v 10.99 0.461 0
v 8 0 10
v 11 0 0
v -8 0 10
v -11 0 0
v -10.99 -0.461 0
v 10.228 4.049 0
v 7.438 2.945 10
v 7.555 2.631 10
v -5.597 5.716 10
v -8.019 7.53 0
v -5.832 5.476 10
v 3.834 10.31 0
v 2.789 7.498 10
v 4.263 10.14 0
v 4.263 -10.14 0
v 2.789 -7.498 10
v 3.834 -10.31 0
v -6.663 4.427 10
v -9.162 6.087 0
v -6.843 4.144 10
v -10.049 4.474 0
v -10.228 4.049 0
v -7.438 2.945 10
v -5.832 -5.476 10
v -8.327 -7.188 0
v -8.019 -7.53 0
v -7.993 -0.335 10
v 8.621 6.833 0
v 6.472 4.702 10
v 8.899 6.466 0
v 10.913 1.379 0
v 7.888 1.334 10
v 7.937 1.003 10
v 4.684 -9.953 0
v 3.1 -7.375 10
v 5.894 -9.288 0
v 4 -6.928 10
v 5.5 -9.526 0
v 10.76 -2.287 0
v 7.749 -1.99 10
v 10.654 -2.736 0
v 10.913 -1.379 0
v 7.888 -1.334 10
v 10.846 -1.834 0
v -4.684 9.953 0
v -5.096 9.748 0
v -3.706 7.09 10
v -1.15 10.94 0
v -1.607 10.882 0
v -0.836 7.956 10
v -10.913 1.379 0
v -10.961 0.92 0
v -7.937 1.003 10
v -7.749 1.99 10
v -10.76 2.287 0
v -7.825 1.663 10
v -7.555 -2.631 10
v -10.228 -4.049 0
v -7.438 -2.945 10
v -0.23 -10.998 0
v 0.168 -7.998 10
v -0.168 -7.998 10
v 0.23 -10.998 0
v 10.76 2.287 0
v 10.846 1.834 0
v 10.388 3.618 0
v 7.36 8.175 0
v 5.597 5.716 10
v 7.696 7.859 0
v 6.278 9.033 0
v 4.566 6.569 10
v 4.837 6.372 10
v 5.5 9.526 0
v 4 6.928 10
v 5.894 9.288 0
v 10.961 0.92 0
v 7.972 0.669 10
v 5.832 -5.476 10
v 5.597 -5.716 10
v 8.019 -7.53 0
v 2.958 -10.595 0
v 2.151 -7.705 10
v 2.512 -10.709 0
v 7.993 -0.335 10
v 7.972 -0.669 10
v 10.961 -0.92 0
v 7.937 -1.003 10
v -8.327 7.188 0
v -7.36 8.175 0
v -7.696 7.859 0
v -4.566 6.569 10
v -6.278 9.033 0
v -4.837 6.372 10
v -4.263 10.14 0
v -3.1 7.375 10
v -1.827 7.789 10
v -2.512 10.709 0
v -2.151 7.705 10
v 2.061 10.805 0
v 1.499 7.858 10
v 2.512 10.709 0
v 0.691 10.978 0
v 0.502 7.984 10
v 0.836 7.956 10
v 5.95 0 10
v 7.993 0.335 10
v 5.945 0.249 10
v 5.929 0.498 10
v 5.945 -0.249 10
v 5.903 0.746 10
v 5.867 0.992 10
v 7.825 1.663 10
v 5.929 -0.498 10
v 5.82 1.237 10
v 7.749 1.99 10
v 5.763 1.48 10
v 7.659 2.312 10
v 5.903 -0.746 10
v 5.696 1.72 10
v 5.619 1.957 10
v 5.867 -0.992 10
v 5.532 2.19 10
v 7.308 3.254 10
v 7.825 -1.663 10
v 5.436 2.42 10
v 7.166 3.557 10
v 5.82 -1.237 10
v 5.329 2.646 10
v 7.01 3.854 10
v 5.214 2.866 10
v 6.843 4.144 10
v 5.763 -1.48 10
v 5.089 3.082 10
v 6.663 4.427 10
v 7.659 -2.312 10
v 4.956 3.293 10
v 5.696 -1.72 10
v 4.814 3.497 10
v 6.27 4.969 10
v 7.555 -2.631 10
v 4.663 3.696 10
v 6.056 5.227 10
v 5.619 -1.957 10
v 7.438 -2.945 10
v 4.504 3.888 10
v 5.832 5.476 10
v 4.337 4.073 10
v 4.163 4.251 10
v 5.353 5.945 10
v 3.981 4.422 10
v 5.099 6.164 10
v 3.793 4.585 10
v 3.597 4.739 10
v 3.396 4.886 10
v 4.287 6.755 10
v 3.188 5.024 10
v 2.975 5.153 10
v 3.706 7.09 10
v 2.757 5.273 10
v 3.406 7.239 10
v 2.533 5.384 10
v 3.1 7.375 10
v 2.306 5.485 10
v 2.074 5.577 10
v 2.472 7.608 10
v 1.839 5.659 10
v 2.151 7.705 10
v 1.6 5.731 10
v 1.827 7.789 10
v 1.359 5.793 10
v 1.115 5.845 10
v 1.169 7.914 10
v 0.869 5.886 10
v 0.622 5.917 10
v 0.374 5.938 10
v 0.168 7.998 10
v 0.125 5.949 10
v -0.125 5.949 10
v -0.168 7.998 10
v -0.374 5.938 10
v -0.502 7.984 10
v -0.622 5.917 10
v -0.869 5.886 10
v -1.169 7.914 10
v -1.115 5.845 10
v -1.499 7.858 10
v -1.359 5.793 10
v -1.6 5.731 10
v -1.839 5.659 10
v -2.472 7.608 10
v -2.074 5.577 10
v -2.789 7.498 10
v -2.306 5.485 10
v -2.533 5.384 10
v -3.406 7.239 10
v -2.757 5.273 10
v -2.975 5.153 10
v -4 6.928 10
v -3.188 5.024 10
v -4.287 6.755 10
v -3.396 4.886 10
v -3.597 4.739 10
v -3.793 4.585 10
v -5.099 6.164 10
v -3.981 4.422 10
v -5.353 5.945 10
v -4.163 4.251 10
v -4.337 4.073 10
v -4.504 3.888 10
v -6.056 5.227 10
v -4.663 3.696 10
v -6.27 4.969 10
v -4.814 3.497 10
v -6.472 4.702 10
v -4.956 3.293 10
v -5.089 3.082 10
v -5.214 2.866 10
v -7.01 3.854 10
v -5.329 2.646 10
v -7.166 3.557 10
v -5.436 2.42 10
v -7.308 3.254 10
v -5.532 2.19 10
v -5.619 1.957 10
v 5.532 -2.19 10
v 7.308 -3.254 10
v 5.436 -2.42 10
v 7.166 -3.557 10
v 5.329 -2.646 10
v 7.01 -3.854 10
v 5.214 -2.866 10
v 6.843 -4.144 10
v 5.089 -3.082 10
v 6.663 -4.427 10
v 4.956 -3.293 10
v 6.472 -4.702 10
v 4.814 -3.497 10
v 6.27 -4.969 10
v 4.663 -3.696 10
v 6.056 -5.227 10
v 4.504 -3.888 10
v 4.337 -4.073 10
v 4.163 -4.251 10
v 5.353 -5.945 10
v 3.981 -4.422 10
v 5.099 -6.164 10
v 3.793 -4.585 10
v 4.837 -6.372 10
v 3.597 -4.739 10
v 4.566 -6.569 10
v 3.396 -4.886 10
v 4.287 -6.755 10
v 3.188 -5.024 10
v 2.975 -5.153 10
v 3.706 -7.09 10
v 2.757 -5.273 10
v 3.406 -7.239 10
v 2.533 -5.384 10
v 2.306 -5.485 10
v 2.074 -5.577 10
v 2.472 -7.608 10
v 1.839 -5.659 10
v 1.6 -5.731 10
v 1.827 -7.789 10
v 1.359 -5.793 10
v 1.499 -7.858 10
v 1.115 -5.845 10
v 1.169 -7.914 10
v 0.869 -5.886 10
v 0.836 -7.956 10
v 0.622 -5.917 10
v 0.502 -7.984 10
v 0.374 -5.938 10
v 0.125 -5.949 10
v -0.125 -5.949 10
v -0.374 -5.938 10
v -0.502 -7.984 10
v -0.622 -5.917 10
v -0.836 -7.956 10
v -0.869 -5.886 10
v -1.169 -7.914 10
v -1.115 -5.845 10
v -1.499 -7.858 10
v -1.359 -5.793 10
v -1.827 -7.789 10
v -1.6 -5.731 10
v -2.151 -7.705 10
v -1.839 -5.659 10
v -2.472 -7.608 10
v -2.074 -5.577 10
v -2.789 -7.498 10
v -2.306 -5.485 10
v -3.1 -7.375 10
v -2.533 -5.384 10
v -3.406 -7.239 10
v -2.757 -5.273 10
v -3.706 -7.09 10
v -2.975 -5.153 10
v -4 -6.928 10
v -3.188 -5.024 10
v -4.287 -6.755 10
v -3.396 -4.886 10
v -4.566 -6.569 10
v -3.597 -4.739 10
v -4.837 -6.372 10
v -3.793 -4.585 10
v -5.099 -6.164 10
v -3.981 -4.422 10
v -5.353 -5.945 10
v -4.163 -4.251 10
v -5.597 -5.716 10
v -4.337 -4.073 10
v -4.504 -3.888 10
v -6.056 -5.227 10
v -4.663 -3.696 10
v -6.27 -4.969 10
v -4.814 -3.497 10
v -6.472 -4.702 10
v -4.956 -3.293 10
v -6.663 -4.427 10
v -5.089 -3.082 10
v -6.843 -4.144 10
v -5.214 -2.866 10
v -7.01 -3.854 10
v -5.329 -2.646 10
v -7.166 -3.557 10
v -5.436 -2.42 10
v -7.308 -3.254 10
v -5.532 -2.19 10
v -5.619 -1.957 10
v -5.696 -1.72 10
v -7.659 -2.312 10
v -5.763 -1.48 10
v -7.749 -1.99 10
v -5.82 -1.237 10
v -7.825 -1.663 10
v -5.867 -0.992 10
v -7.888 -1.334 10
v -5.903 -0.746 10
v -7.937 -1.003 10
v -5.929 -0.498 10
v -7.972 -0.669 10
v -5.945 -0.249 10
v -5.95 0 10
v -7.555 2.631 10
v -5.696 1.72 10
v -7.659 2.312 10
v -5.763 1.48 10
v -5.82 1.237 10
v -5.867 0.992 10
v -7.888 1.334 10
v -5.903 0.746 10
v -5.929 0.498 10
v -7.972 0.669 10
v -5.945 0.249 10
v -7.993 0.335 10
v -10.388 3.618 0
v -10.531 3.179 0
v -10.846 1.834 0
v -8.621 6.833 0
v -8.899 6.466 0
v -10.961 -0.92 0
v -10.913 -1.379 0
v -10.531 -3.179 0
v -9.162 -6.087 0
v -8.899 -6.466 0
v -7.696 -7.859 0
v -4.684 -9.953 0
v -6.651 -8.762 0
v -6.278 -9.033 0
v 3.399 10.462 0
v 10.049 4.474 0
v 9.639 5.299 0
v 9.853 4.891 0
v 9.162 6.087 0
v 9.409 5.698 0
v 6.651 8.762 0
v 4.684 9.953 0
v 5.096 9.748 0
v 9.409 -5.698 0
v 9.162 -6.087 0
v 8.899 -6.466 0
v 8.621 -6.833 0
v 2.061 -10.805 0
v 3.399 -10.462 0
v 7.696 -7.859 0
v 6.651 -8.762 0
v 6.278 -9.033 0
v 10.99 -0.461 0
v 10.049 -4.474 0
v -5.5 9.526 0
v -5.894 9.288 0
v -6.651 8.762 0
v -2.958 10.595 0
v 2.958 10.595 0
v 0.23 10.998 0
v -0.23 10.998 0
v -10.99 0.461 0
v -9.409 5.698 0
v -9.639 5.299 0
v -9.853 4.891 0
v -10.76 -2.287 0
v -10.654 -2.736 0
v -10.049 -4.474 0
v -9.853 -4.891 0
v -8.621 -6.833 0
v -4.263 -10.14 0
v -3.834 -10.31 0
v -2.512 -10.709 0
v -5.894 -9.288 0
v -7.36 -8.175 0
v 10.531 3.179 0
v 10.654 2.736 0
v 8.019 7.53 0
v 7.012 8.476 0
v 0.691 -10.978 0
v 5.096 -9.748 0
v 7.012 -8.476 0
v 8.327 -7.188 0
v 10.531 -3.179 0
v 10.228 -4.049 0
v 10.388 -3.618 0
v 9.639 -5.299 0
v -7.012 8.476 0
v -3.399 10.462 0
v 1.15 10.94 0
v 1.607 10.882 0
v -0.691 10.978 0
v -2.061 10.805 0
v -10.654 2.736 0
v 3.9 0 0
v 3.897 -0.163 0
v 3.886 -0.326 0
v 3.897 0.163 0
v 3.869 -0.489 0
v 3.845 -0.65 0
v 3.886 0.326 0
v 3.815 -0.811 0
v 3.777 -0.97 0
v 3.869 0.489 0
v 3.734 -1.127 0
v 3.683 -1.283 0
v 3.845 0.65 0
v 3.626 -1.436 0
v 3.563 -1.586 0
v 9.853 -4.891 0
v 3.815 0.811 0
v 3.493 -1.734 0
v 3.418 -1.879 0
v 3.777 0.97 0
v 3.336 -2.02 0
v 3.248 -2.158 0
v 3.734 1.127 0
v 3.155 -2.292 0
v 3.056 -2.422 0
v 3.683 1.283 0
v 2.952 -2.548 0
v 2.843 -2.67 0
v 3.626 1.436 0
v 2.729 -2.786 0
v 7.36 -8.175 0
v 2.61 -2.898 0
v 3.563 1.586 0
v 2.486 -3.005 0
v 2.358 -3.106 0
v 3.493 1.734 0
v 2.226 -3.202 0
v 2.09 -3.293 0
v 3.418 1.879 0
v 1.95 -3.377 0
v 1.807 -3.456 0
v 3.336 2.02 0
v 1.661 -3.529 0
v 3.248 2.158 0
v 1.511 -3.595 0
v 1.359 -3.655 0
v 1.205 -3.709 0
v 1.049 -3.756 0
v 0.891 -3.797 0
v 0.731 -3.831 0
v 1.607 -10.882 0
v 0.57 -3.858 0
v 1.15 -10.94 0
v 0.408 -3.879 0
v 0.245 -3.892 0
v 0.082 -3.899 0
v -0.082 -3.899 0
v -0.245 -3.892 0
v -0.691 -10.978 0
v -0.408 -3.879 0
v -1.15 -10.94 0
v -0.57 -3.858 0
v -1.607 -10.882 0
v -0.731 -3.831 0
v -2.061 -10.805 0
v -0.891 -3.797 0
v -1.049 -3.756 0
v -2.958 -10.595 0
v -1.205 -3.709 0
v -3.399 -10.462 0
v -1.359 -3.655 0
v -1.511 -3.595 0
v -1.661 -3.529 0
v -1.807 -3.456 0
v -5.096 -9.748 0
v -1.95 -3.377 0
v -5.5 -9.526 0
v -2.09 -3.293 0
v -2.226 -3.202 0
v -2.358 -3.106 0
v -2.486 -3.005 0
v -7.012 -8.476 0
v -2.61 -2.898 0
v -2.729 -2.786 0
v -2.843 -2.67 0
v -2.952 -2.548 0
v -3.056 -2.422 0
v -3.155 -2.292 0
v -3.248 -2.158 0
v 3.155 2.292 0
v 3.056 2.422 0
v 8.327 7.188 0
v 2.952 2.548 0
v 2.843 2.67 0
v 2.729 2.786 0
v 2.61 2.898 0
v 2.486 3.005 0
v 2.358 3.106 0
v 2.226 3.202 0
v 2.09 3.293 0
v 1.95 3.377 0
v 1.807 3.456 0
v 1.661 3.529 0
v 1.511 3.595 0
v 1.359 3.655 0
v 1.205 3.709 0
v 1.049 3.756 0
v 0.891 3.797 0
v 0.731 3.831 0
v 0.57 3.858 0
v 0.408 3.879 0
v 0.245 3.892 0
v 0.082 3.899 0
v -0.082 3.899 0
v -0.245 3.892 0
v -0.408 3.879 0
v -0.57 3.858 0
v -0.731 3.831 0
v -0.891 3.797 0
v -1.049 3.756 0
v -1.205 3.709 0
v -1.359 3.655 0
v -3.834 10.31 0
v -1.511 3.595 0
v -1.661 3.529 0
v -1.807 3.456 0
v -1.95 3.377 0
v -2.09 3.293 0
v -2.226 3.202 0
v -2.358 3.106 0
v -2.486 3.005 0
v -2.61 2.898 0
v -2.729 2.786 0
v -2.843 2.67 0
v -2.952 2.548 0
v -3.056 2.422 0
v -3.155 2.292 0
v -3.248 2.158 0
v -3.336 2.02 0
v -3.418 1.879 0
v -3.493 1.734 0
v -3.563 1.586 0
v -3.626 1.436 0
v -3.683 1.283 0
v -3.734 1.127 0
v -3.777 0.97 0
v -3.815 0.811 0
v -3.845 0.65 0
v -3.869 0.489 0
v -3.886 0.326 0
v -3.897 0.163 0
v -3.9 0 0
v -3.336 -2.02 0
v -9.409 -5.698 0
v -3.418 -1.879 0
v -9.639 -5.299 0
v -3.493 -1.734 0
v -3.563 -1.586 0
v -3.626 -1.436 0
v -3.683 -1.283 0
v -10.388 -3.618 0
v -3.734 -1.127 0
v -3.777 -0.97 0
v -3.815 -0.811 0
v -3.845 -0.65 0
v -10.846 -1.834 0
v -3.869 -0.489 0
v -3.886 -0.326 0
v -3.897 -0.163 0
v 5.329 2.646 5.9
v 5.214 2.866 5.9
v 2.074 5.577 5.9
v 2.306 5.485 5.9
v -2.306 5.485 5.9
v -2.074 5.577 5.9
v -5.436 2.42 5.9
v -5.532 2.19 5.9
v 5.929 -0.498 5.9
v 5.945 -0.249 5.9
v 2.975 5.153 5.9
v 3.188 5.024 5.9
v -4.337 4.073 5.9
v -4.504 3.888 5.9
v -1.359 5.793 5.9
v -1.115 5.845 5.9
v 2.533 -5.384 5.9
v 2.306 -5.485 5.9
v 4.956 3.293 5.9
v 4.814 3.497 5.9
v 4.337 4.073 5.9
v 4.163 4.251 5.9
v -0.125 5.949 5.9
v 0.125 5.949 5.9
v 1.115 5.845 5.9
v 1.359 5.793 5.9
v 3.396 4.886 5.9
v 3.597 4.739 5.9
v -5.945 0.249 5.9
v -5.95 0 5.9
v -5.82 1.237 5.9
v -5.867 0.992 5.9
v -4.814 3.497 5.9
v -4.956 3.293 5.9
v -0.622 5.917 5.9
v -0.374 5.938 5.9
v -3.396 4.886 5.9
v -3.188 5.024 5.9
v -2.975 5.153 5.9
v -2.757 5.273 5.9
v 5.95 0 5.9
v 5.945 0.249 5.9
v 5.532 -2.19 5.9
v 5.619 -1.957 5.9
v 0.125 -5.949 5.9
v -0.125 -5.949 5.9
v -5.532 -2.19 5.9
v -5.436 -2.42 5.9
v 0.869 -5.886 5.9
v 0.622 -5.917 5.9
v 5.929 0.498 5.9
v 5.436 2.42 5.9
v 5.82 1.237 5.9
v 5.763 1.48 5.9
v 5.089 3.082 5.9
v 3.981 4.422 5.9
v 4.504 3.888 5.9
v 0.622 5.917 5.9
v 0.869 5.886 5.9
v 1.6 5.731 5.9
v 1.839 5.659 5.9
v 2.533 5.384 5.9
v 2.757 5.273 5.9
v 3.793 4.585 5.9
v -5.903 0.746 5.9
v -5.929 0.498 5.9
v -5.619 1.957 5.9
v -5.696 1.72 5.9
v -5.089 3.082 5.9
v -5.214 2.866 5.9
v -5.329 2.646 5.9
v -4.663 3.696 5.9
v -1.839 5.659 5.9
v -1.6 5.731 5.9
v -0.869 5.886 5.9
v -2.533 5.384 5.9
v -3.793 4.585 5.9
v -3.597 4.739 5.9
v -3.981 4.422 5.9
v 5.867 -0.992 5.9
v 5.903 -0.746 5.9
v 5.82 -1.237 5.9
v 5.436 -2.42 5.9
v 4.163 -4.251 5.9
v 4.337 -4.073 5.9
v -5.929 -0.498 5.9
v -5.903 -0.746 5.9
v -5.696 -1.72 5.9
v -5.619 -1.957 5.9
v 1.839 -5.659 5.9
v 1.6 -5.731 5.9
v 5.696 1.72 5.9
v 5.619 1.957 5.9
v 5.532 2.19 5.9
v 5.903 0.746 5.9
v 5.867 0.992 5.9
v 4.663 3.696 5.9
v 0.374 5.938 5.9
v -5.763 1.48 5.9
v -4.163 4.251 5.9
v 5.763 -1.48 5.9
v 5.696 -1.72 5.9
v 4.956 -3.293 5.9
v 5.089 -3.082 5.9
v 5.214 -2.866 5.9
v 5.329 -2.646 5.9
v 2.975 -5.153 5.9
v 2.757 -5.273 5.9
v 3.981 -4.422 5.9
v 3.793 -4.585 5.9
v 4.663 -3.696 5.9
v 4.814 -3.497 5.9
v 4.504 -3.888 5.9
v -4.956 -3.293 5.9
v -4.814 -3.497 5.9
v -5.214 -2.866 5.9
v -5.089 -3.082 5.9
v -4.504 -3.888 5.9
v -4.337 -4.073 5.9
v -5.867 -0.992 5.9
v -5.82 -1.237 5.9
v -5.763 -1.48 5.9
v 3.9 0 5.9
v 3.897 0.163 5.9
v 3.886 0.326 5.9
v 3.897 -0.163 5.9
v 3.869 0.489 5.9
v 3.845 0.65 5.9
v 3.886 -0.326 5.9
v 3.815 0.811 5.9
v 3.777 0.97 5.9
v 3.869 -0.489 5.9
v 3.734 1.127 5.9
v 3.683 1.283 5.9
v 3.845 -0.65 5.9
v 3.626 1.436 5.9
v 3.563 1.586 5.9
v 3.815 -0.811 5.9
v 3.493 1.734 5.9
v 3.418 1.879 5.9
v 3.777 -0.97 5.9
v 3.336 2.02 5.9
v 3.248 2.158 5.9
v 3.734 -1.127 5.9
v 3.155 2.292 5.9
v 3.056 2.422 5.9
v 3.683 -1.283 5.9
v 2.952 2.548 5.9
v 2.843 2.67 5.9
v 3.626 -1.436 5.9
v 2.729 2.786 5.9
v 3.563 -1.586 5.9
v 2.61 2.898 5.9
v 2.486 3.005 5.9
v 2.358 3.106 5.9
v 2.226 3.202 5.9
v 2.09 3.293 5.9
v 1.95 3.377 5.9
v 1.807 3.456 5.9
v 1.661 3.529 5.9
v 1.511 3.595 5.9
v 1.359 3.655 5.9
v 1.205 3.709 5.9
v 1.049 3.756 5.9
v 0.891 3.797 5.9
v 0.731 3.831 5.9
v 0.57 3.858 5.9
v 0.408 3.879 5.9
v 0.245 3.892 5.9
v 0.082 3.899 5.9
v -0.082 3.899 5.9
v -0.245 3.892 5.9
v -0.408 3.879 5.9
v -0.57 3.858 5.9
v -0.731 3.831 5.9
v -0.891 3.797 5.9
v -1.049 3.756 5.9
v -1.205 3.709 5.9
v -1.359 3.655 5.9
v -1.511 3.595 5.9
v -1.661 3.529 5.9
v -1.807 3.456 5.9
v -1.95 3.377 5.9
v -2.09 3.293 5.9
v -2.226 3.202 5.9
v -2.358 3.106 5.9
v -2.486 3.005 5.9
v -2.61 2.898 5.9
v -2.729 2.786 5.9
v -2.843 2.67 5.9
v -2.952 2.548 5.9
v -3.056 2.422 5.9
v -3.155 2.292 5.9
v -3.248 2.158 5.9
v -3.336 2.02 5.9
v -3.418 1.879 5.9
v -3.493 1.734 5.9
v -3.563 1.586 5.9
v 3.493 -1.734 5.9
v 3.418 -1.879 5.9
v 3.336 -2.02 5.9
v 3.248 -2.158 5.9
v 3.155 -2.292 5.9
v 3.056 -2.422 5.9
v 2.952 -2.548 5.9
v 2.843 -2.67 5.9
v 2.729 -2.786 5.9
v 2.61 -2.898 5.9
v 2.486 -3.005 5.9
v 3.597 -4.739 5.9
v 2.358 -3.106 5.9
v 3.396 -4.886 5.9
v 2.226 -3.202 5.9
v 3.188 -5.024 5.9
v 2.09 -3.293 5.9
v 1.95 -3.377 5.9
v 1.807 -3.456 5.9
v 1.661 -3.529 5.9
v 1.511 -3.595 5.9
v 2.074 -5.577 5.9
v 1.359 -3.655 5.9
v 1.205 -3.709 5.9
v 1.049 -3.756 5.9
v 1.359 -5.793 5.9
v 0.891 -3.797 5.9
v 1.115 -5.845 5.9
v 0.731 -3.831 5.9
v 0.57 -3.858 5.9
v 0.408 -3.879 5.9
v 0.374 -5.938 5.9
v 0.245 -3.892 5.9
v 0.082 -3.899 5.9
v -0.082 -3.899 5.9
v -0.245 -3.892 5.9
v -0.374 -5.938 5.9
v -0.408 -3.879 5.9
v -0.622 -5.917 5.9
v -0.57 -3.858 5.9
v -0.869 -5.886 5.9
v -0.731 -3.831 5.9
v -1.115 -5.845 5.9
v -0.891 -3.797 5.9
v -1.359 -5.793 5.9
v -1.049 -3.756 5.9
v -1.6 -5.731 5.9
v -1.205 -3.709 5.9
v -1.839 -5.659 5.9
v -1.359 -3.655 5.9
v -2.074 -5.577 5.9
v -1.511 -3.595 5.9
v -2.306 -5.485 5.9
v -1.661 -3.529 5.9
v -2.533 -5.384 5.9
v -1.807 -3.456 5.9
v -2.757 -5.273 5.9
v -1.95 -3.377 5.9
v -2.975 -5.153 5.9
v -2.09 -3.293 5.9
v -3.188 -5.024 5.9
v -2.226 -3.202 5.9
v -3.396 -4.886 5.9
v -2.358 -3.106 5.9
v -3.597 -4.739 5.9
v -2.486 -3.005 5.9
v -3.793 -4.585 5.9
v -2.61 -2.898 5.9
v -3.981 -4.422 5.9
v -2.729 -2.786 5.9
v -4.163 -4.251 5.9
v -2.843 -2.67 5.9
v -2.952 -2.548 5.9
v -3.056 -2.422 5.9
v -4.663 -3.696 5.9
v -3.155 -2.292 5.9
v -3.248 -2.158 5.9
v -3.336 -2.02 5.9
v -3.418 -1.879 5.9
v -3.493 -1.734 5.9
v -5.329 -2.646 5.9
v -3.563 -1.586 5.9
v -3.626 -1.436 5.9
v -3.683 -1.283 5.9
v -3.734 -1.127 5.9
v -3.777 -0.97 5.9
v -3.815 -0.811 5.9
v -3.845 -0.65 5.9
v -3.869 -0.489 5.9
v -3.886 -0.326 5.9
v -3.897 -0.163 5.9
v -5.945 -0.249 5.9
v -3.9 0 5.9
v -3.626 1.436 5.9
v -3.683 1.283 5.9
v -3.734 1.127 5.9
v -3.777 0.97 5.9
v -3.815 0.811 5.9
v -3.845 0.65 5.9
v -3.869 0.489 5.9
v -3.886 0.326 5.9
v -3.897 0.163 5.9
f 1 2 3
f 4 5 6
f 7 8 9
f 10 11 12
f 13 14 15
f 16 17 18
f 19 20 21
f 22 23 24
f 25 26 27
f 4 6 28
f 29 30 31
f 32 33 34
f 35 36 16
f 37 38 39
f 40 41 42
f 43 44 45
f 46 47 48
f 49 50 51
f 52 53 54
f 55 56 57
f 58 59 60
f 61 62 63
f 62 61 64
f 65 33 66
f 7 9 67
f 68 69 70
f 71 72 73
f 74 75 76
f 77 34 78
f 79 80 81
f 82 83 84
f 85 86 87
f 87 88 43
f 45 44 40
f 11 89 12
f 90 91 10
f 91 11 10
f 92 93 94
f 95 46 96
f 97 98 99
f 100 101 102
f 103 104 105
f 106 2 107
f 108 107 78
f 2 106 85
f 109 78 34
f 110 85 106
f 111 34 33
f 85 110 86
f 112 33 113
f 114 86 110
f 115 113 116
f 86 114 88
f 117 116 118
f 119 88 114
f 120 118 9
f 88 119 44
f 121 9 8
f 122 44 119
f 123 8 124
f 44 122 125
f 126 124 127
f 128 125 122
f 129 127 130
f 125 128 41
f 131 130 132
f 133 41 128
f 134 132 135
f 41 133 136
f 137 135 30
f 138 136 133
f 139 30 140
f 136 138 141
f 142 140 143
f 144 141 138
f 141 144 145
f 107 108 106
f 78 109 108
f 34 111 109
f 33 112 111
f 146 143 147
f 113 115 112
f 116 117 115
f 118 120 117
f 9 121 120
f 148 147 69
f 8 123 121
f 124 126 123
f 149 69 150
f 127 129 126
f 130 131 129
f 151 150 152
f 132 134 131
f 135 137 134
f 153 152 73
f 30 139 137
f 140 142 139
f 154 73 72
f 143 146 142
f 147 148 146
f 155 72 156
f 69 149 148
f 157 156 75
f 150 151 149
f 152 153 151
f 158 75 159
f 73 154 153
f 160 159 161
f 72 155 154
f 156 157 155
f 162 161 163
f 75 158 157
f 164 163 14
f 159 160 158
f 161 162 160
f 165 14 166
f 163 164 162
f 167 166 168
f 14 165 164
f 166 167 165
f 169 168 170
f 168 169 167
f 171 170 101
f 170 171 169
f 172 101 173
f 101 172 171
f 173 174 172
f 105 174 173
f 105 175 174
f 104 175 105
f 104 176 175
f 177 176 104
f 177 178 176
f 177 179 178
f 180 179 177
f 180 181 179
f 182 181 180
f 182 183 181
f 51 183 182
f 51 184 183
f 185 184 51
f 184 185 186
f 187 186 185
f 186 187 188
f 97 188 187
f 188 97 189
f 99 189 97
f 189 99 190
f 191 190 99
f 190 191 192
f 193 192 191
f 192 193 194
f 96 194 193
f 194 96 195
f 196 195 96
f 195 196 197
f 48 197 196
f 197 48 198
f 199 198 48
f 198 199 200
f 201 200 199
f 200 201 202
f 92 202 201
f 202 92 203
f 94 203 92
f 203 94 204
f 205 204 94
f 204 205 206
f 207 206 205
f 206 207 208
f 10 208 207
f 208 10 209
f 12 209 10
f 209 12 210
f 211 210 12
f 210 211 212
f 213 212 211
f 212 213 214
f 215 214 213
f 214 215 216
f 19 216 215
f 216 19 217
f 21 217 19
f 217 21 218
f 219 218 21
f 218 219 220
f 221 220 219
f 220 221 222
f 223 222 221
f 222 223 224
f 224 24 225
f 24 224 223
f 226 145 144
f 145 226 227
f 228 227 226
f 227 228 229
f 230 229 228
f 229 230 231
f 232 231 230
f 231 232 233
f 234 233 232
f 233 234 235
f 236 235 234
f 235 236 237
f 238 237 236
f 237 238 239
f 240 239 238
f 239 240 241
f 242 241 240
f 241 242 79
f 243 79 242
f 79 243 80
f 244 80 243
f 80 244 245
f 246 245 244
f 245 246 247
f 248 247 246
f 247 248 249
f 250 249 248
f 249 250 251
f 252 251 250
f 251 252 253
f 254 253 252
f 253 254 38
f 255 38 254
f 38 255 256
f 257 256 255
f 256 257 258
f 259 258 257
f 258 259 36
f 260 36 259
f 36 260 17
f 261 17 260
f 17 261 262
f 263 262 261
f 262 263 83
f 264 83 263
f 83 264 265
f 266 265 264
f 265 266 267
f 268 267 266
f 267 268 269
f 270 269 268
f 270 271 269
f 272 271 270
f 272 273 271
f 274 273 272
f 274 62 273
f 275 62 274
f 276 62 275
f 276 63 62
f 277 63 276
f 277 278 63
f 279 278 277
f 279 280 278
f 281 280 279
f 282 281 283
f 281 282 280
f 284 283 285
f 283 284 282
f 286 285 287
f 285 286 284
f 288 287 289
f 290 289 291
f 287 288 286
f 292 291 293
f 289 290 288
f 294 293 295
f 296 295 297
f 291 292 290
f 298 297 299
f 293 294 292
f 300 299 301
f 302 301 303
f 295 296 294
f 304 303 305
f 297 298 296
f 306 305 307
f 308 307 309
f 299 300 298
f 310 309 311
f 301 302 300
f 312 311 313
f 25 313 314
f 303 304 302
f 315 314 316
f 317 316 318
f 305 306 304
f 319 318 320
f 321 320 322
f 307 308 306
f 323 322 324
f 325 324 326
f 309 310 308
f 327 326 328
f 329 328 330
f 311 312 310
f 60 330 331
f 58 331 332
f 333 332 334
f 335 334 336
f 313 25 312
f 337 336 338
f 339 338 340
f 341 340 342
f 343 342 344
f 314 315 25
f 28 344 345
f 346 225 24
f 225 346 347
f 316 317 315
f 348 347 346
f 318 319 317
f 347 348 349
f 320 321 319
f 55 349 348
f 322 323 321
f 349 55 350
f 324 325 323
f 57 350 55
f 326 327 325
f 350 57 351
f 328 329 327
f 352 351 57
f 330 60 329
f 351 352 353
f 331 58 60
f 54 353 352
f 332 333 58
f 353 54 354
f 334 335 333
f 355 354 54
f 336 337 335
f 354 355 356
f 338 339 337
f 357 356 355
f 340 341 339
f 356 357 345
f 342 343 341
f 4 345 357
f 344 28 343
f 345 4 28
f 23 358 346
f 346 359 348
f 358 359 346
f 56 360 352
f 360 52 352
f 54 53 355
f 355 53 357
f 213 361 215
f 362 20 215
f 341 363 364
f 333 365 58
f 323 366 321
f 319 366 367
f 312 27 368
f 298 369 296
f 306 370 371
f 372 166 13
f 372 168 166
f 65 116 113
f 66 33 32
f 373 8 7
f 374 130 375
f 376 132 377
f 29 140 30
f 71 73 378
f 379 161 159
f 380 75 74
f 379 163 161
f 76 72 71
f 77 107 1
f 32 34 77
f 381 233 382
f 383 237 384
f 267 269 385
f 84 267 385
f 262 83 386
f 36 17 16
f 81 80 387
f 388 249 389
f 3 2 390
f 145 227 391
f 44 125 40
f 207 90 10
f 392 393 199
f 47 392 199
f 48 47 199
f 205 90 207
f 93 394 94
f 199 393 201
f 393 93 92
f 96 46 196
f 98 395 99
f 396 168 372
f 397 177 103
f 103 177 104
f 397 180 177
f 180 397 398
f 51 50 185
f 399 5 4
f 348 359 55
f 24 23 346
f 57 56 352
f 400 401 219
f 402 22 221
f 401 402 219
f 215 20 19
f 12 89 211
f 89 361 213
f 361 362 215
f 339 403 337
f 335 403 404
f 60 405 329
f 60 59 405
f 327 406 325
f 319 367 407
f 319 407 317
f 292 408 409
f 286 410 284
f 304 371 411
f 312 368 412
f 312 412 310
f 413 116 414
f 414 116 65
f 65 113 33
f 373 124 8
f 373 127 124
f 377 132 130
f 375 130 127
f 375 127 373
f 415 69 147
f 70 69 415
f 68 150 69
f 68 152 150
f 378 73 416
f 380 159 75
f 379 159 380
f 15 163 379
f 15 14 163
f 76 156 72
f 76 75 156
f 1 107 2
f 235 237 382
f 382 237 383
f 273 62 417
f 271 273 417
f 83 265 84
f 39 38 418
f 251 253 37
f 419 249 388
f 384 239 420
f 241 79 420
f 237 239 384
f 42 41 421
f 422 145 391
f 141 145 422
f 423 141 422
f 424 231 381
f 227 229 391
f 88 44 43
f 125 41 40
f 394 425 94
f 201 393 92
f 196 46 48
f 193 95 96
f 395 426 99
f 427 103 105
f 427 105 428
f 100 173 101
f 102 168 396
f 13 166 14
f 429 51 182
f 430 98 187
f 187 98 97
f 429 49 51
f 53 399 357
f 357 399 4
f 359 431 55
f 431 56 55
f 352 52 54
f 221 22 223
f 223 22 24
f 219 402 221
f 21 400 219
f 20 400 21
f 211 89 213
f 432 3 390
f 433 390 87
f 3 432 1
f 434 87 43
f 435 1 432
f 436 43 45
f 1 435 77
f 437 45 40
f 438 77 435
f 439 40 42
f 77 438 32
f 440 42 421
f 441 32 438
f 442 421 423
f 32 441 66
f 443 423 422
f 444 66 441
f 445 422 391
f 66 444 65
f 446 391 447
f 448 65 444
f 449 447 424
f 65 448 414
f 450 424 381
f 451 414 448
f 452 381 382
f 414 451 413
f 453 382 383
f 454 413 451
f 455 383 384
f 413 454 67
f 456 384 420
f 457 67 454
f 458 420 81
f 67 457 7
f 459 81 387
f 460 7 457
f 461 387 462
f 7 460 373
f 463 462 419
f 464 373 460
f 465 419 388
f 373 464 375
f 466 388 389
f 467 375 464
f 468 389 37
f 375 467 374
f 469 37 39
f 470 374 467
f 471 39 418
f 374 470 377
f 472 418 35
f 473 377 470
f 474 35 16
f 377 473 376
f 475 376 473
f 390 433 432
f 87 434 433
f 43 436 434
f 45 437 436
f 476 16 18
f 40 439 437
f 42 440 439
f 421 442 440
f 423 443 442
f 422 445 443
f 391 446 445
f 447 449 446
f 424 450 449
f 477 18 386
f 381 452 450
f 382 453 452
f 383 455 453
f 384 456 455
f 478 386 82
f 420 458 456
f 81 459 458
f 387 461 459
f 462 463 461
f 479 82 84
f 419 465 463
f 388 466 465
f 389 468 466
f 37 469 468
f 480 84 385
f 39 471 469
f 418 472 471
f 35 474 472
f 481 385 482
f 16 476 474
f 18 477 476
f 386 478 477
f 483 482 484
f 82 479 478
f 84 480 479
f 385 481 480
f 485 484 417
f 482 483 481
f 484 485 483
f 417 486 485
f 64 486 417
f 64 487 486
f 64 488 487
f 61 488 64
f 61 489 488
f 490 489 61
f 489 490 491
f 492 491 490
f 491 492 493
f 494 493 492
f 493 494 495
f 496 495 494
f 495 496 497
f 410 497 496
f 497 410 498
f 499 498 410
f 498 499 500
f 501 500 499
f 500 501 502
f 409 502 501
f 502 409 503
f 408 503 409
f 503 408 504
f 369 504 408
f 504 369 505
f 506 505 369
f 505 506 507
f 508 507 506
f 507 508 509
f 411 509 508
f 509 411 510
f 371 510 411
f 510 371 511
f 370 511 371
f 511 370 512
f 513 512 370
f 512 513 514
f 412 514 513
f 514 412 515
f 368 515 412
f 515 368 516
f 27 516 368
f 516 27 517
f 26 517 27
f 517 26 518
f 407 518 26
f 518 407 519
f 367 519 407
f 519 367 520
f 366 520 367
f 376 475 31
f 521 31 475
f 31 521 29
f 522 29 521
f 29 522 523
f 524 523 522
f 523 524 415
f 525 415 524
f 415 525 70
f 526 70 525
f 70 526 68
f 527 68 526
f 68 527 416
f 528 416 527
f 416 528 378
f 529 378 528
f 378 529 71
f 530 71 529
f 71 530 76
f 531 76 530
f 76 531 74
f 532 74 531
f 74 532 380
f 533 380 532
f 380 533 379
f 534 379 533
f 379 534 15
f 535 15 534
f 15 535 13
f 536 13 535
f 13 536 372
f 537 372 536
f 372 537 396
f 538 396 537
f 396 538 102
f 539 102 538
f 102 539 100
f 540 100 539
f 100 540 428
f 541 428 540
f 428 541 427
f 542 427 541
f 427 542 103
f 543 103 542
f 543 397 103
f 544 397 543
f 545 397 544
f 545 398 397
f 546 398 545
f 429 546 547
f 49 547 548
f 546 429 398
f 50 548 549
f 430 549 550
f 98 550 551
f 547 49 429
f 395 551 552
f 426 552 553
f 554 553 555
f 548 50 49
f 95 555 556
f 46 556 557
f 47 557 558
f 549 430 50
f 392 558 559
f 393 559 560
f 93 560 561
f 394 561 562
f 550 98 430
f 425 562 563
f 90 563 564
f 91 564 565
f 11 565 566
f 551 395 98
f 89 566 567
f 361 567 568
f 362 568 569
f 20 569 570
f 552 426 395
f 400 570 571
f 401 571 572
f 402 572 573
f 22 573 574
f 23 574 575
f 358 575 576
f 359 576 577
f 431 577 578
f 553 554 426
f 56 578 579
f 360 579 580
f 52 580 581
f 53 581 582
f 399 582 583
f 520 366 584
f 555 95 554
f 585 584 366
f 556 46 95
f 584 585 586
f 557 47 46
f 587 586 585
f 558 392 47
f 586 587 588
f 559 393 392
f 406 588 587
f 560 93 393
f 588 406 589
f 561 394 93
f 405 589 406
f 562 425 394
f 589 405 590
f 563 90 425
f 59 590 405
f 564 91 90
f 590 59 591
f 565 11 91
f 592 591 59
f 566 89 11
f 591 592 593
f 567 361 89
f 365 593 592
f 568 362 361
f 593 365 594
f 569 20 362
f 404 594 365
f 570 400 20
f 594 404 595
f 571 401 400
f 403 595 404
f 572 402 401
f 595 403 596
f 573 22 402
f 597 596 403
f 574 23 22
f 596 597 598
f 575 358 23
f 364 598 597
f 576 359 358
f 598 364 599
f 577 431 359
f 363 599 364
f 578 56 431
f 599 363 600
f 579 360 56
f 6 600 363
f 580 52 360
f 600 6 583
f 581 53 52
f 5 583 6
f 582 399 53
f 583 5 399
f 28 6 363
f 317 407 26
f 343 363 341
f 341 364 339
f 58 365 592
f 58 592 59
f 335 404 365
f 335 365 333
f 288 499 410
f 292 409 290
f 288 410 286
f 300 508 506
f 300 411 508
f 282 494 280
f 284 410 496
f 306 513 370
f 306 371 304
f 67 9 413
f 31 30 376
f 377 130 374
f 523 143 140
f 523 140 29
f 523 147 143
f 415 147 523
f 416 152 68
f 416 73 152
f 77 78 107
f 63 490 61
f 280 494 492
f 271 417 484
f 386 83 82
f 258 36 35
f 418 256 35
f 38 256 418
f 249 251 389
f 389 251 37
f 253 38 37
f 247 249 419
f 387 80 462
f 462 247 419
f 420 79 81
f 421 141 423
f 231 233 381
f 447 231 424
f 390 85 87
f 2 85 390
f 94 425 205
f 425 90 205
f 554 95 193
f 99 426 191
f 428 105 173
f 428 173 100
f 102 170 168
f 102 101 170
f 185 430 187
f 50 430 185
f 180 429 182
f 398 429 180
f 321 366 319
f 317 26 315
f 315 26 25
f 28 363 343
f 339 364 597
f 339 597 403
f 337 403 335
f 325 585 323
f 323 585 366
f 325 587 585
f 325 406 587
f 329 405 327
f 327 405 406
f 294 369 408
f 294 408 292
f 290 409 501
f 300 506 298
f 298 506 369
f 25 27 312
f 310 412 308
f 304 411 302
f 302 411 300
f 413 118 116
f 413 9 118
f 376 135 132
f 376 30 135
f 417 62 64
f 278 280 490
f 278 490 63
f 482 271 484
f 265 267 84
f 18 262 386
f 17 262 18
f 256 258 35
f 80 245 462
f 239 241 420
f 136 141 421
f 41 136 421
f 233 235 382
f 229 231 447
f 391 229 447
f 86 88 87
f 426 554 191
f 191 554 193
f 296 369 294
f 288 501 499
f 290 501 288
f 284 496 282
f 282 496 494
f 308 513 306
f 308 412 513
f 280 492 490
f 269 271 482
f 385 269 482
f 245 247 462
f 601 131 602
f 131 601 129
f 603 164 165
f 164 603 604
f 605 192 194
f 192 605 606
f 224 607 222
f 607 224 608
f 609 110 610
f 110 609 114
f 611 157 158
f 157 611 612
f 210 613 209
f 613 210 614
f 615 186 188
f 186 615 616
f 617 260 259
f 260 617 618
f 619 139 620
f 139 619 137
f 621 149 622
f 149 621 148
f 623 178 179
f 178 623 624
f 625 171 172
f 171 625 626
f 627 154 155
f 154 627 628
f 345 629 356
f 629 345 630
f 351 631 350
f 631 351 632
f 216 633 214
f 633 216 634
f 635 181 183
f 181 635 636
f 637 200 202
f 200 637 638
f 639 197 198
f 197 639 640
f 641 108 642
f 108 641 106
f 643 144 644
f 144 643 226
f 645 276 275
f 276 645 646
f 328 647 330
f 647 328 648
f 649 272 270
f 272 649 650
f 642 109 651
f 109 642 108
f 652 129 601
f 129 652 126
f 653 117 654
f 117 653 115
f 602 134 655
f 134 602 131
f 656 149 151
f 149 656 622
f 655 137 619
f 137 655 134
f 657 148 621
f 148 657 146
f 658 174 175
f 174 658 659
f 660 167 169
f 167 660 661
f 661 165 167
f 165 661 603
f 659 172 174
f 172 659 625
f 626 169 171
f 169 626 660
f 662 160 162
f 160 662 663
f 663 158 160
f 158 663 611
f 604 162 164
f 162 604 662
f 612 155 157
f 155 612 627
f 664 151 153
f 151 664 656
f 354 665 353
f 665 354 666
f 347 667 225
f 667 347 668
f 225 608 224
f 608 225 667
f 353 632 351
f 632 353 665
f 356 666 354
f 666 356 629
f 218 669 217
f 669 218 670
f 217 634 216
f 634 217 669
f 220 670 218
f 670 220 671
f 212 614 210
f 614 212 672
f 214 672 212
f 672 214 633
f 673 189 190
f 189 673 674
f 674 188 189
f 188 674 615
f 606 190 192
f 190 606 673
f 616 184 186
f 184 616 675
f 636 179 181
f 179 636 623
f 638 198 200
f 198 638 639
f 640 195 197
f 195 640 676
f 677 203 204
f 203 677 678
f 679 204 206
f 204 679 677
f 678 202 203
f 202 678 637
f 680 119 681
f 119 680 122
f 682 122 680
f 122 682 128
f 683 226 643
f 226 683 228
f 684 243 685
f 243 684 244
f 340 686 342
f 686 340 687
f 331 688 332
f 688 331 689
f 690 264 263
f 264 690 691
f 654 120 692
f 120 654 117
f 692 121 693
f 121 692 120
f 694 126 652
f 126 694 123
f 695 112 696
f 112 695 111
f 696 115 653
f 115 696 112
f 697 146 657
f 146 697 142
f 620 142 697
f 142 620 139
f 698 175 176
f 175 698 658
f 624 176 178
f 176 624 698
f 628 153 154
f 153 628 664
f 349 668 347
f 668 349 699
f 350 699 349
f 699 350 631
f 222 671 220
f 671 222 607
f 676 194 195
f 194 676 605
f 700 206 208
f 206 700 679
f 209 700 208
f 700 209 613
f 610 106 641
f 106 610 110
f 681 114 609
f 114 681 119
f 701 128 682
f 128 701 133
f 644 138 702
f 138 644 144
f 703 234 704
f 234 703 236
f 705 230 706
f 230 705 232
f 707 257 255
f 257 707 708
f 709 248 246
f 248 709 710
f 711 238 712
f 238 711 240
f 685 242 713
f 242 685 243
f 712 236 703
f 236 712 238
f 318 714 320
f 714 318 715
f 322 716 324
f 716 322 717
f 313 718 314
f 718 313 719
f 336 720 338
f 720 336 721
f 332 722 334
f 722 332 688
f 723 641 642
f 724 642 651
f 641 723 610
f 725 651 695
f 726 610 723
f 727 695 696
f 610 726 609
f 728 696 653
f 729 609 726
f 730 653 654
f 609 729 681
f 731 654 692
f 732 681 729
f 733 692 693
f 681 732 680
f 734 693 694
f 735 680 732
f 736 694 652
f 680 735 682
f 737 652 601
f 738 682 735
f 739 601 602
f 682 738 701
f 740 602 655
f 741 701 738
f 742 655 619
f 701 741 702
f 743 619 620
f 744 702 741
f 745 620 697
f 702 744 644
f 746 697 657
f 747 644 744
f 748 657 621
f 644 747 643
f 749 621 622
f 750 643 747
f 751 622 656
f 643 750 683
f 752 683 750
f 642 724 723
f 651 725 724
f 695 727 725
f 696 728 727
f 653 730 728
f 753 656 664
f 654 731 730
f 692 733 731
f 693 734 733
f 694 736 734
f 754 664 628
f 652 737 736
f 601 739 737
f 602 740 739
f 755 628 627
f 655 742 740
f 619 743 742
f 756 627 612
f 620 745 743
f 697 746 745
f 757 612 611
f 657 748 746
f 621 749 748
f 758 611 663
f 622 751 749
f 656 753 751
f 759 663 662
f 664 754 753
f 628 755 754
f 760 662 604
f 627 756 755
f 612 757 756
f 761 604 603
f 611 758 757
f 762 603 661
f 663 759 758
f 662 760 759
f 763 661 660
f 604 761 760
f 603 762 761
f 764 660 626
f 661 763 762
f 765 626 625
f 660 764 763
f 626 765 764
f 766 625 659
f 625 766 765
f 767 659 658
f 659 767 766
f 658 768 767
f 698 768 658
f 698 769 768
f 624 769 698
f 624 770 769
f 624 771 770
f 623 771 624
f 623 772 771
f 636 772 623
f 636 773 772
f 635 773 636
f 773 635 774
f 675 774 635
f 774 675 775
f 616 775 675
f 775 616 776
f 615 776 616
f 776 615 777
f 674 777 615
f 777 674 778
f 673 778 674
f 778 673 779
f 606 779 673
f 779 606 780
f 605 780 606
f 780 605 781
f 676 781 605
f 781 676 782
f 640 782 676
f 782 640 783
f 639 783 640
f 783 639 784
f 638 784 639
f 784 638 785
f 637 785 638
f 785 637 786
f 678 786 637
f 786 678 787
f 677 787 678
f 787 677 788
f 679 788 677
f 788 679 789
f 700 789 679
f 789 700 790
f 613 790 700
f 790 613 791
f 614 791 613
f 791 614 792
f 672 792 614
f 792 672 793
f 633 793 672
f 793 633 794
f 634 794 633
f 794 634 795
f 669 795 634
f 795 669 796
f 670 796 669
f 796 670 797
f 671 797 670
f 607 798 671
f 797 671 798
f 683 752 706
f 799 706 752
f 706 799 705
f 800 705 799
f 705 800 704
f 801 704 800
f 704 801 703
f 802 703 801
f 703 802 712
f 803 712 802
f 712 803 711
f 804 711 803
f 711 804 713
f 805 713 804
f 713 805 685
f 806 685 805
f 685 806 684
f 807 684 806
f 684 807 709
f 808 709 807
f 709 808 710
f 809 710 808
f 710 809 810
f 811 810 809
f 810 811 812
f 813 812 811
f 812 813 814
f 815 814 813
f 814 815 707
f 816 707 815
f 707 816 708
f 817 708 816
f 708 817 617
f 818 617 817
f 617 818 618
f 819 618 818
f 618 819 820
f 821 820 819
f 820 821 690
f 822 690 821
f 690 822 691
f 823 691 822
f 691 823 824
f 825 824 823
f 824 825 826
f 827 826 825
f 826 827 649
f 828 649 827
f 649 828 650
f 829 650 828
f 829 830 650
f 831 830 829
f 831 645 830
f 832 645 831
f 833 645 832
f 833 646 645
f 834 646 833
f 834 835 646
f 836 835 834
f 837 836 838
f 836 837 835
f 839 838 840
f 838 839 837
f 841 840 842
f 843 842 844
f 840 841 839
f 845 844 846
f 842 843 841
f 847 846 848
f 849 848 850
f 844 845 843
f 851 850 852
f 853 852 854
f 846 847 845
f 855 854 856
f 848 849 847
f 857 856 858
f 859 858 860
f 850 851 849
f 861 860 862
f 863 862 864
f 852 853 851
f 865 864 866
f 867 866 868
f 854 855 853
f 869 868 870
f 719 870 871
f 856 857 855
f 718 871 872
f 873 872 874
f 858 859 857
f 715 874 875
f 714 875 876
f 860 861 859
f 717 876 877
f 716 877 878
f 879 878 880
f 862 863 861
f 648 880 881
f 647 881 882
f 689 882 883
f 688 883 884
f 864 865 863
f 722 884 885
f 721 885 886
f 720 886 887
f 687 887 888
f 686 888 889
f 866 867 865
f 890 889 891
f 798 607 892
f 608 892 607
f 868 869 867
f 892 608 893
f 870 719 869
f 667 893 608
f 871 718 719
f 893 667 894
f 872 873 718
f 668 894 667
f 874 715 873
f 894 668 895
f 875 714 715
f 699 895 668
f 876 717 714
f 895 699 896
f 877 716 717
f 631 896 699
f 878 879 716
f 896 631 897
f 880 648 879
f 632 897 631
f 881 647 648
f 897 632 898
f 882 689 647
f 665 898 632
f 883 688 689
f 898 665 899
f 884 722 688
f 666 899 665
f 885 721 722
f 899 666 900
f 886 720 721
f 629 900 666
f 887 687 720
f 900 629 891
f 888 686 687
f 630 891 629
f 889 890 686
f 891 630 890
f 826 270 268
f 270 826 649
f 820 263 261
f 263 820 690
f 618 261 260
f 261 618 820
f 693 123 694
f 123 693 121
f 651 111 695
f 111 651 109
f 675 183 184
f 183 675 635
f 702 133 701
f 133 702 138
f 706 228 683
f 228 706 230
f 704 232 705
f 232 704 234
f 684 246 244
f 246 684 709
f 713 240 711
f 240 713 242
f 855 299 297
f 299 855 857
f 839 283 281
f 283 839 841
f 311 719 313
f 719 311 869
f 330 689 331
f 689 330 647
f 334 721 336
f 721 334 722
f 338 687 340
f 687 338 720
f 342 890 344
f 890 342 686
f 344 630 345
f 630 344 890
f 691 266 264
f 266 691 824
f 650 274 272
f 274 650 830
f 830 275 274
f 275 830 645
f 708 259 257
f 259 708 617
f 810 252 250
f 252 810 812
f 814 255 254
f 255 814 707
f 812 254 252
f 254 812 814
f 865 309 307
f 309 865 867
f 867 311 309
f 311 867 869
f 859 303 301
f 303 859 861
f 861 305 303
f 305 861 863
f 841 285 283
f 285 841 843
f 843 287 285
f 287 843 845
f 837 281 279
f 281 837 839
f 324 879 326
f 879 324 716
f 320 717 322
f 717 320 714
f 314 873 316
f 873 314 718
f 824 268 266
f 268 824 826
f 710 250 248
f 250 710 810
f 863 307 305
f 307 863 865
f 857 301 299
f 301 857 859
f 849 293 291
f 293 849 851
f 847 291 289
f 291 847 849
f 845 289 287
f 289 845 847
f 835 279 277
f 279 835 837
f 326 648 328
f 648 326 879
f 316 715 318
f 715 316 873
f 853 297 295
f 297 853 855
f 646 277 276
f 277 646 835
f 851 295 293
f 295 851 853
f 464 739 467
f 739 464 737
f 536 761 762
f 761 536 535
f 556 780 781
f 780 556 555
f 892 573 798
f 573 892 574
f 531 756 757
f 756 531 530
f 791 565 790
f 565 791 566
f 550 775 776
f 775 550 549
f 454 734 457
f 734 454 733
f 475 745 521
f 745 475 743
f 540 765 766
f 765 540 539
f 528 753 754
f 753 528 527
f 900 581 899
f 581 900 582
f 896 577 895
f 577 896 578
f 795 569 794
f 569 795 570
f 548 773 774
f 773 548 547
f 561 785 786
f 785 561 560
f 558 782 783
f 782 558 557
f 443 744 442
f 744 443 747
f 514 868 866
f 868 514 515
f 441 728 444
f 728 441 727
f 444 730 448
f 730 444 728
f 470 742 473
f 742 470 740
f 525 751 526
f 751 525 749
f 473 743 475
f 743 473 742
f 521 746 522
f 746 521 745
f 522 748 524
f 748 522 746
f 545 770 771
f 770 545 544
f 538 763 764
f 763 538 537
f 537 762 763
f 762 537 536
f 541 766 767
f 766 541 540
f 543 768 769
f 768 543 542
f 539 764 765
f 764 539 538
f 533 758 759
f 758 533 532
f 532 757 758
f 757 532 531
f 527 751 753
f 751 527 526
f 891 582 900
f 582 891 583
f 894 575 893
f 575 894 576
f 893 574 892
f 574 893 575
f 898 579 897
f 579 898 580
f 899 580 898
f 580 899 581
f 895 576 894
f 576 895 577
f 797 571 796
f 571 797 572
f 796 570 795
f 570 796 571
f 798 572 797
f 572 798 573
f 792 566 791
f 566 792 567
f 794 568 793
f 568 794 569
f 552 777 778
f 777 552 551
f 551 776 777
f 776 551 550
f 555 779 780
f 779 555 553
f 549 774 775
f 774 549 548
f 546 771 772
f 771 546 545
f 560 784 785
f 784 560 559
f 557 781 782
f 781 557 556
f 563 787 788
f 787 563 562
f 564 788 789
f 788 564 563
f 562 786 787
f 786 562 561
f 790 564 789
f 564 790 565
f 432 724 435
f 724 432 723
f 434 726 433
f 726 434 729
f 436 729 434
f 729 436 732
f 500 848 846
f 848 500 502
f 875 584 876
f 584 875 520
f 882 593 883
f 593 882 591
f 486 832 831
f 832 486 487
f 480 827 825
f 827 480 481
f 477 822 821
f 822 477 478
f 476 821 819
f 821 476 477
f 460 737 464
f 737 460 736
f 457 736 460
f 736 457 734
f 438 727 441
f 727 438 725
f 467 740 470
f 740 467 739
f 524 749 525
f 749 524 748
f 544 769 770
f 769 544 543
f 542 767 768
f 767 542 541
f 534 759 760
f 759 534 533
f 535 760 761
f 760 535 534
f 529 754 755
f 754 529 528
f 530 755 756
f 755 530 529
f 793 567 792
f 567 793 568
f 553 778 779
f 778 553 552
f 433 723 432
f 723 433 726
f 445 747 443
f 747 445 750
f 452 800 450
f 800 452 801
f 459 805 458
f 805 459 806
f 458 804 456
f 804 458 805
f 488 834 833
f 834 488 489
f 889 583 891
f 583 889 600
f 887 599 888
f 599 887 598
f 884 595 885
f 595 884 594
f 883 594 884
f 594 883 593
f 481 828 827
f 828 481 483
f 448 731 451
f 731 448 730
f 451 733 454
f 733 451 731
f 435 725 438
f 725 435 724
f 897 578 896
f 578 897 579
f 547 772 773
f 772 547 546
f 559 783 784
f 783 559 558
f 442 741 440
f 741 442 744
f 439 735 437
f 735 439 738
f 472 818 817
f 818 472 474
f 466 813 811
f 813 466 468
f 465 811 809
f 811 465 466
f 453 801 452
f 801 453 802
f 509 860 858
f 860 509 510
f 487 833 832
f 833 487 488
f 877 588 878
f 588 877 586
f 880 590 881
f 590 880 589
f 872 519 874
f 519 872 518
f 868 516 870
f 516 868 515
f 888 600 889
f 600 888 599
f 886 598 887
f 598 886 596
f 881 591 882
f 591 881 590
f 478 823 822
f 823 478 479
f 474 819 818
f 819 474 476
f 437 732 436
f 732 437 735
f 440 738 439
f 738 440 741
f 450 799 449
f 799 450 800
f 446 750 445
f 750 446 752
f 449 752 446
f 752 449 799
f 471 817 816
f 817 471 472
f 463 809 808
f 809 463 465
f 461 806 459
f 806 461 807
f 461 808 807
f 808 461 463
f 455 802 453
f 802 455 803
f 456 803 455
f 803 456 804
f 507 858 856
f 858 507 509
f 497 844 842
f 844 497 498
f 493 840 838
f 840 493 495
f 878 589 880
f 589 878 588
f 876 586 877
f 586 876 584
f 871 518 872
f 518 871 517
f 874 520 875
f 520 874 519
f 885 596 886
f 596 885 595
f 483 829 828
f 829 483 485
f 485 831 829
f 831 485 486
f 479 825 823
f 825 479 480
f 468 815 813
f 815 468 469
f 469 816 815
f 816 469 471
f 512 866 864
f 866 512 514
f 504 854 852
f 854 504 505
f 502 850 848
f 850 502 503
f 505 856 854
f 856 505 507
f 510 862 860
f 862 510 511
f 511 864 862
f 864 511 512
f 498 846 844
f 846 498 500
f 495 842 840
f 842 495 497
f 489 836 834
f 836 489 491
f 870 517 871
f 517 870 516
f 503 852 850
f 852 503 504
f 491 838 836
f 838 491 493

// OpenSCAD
$fn = 150;

module frustum(d1, d2, h) {
    difference() {
        // 创建圆台的外形
        cylinder(h = h, r1 = d1 / 2, r2 = d2 / 2);
        
        // 从顶部中心挖一个直径为 11.9mm 的圆柱
        translate([0,0,5.9])
        cylinder(h = 4.2, r = 11.9 / 2);
        translate([0,0,-0.01])
        cylinder(h = 6, r = 7.8 / 2);
    }
}

// 设置圆台的参数
diameter_bottom = 22; // 底部直径
diameter_top = 16;    // 顶部直径
height = 10;         // 圆台高度

// 绘制圆台
frustum(diameter_bottom, diameter_top, height);
